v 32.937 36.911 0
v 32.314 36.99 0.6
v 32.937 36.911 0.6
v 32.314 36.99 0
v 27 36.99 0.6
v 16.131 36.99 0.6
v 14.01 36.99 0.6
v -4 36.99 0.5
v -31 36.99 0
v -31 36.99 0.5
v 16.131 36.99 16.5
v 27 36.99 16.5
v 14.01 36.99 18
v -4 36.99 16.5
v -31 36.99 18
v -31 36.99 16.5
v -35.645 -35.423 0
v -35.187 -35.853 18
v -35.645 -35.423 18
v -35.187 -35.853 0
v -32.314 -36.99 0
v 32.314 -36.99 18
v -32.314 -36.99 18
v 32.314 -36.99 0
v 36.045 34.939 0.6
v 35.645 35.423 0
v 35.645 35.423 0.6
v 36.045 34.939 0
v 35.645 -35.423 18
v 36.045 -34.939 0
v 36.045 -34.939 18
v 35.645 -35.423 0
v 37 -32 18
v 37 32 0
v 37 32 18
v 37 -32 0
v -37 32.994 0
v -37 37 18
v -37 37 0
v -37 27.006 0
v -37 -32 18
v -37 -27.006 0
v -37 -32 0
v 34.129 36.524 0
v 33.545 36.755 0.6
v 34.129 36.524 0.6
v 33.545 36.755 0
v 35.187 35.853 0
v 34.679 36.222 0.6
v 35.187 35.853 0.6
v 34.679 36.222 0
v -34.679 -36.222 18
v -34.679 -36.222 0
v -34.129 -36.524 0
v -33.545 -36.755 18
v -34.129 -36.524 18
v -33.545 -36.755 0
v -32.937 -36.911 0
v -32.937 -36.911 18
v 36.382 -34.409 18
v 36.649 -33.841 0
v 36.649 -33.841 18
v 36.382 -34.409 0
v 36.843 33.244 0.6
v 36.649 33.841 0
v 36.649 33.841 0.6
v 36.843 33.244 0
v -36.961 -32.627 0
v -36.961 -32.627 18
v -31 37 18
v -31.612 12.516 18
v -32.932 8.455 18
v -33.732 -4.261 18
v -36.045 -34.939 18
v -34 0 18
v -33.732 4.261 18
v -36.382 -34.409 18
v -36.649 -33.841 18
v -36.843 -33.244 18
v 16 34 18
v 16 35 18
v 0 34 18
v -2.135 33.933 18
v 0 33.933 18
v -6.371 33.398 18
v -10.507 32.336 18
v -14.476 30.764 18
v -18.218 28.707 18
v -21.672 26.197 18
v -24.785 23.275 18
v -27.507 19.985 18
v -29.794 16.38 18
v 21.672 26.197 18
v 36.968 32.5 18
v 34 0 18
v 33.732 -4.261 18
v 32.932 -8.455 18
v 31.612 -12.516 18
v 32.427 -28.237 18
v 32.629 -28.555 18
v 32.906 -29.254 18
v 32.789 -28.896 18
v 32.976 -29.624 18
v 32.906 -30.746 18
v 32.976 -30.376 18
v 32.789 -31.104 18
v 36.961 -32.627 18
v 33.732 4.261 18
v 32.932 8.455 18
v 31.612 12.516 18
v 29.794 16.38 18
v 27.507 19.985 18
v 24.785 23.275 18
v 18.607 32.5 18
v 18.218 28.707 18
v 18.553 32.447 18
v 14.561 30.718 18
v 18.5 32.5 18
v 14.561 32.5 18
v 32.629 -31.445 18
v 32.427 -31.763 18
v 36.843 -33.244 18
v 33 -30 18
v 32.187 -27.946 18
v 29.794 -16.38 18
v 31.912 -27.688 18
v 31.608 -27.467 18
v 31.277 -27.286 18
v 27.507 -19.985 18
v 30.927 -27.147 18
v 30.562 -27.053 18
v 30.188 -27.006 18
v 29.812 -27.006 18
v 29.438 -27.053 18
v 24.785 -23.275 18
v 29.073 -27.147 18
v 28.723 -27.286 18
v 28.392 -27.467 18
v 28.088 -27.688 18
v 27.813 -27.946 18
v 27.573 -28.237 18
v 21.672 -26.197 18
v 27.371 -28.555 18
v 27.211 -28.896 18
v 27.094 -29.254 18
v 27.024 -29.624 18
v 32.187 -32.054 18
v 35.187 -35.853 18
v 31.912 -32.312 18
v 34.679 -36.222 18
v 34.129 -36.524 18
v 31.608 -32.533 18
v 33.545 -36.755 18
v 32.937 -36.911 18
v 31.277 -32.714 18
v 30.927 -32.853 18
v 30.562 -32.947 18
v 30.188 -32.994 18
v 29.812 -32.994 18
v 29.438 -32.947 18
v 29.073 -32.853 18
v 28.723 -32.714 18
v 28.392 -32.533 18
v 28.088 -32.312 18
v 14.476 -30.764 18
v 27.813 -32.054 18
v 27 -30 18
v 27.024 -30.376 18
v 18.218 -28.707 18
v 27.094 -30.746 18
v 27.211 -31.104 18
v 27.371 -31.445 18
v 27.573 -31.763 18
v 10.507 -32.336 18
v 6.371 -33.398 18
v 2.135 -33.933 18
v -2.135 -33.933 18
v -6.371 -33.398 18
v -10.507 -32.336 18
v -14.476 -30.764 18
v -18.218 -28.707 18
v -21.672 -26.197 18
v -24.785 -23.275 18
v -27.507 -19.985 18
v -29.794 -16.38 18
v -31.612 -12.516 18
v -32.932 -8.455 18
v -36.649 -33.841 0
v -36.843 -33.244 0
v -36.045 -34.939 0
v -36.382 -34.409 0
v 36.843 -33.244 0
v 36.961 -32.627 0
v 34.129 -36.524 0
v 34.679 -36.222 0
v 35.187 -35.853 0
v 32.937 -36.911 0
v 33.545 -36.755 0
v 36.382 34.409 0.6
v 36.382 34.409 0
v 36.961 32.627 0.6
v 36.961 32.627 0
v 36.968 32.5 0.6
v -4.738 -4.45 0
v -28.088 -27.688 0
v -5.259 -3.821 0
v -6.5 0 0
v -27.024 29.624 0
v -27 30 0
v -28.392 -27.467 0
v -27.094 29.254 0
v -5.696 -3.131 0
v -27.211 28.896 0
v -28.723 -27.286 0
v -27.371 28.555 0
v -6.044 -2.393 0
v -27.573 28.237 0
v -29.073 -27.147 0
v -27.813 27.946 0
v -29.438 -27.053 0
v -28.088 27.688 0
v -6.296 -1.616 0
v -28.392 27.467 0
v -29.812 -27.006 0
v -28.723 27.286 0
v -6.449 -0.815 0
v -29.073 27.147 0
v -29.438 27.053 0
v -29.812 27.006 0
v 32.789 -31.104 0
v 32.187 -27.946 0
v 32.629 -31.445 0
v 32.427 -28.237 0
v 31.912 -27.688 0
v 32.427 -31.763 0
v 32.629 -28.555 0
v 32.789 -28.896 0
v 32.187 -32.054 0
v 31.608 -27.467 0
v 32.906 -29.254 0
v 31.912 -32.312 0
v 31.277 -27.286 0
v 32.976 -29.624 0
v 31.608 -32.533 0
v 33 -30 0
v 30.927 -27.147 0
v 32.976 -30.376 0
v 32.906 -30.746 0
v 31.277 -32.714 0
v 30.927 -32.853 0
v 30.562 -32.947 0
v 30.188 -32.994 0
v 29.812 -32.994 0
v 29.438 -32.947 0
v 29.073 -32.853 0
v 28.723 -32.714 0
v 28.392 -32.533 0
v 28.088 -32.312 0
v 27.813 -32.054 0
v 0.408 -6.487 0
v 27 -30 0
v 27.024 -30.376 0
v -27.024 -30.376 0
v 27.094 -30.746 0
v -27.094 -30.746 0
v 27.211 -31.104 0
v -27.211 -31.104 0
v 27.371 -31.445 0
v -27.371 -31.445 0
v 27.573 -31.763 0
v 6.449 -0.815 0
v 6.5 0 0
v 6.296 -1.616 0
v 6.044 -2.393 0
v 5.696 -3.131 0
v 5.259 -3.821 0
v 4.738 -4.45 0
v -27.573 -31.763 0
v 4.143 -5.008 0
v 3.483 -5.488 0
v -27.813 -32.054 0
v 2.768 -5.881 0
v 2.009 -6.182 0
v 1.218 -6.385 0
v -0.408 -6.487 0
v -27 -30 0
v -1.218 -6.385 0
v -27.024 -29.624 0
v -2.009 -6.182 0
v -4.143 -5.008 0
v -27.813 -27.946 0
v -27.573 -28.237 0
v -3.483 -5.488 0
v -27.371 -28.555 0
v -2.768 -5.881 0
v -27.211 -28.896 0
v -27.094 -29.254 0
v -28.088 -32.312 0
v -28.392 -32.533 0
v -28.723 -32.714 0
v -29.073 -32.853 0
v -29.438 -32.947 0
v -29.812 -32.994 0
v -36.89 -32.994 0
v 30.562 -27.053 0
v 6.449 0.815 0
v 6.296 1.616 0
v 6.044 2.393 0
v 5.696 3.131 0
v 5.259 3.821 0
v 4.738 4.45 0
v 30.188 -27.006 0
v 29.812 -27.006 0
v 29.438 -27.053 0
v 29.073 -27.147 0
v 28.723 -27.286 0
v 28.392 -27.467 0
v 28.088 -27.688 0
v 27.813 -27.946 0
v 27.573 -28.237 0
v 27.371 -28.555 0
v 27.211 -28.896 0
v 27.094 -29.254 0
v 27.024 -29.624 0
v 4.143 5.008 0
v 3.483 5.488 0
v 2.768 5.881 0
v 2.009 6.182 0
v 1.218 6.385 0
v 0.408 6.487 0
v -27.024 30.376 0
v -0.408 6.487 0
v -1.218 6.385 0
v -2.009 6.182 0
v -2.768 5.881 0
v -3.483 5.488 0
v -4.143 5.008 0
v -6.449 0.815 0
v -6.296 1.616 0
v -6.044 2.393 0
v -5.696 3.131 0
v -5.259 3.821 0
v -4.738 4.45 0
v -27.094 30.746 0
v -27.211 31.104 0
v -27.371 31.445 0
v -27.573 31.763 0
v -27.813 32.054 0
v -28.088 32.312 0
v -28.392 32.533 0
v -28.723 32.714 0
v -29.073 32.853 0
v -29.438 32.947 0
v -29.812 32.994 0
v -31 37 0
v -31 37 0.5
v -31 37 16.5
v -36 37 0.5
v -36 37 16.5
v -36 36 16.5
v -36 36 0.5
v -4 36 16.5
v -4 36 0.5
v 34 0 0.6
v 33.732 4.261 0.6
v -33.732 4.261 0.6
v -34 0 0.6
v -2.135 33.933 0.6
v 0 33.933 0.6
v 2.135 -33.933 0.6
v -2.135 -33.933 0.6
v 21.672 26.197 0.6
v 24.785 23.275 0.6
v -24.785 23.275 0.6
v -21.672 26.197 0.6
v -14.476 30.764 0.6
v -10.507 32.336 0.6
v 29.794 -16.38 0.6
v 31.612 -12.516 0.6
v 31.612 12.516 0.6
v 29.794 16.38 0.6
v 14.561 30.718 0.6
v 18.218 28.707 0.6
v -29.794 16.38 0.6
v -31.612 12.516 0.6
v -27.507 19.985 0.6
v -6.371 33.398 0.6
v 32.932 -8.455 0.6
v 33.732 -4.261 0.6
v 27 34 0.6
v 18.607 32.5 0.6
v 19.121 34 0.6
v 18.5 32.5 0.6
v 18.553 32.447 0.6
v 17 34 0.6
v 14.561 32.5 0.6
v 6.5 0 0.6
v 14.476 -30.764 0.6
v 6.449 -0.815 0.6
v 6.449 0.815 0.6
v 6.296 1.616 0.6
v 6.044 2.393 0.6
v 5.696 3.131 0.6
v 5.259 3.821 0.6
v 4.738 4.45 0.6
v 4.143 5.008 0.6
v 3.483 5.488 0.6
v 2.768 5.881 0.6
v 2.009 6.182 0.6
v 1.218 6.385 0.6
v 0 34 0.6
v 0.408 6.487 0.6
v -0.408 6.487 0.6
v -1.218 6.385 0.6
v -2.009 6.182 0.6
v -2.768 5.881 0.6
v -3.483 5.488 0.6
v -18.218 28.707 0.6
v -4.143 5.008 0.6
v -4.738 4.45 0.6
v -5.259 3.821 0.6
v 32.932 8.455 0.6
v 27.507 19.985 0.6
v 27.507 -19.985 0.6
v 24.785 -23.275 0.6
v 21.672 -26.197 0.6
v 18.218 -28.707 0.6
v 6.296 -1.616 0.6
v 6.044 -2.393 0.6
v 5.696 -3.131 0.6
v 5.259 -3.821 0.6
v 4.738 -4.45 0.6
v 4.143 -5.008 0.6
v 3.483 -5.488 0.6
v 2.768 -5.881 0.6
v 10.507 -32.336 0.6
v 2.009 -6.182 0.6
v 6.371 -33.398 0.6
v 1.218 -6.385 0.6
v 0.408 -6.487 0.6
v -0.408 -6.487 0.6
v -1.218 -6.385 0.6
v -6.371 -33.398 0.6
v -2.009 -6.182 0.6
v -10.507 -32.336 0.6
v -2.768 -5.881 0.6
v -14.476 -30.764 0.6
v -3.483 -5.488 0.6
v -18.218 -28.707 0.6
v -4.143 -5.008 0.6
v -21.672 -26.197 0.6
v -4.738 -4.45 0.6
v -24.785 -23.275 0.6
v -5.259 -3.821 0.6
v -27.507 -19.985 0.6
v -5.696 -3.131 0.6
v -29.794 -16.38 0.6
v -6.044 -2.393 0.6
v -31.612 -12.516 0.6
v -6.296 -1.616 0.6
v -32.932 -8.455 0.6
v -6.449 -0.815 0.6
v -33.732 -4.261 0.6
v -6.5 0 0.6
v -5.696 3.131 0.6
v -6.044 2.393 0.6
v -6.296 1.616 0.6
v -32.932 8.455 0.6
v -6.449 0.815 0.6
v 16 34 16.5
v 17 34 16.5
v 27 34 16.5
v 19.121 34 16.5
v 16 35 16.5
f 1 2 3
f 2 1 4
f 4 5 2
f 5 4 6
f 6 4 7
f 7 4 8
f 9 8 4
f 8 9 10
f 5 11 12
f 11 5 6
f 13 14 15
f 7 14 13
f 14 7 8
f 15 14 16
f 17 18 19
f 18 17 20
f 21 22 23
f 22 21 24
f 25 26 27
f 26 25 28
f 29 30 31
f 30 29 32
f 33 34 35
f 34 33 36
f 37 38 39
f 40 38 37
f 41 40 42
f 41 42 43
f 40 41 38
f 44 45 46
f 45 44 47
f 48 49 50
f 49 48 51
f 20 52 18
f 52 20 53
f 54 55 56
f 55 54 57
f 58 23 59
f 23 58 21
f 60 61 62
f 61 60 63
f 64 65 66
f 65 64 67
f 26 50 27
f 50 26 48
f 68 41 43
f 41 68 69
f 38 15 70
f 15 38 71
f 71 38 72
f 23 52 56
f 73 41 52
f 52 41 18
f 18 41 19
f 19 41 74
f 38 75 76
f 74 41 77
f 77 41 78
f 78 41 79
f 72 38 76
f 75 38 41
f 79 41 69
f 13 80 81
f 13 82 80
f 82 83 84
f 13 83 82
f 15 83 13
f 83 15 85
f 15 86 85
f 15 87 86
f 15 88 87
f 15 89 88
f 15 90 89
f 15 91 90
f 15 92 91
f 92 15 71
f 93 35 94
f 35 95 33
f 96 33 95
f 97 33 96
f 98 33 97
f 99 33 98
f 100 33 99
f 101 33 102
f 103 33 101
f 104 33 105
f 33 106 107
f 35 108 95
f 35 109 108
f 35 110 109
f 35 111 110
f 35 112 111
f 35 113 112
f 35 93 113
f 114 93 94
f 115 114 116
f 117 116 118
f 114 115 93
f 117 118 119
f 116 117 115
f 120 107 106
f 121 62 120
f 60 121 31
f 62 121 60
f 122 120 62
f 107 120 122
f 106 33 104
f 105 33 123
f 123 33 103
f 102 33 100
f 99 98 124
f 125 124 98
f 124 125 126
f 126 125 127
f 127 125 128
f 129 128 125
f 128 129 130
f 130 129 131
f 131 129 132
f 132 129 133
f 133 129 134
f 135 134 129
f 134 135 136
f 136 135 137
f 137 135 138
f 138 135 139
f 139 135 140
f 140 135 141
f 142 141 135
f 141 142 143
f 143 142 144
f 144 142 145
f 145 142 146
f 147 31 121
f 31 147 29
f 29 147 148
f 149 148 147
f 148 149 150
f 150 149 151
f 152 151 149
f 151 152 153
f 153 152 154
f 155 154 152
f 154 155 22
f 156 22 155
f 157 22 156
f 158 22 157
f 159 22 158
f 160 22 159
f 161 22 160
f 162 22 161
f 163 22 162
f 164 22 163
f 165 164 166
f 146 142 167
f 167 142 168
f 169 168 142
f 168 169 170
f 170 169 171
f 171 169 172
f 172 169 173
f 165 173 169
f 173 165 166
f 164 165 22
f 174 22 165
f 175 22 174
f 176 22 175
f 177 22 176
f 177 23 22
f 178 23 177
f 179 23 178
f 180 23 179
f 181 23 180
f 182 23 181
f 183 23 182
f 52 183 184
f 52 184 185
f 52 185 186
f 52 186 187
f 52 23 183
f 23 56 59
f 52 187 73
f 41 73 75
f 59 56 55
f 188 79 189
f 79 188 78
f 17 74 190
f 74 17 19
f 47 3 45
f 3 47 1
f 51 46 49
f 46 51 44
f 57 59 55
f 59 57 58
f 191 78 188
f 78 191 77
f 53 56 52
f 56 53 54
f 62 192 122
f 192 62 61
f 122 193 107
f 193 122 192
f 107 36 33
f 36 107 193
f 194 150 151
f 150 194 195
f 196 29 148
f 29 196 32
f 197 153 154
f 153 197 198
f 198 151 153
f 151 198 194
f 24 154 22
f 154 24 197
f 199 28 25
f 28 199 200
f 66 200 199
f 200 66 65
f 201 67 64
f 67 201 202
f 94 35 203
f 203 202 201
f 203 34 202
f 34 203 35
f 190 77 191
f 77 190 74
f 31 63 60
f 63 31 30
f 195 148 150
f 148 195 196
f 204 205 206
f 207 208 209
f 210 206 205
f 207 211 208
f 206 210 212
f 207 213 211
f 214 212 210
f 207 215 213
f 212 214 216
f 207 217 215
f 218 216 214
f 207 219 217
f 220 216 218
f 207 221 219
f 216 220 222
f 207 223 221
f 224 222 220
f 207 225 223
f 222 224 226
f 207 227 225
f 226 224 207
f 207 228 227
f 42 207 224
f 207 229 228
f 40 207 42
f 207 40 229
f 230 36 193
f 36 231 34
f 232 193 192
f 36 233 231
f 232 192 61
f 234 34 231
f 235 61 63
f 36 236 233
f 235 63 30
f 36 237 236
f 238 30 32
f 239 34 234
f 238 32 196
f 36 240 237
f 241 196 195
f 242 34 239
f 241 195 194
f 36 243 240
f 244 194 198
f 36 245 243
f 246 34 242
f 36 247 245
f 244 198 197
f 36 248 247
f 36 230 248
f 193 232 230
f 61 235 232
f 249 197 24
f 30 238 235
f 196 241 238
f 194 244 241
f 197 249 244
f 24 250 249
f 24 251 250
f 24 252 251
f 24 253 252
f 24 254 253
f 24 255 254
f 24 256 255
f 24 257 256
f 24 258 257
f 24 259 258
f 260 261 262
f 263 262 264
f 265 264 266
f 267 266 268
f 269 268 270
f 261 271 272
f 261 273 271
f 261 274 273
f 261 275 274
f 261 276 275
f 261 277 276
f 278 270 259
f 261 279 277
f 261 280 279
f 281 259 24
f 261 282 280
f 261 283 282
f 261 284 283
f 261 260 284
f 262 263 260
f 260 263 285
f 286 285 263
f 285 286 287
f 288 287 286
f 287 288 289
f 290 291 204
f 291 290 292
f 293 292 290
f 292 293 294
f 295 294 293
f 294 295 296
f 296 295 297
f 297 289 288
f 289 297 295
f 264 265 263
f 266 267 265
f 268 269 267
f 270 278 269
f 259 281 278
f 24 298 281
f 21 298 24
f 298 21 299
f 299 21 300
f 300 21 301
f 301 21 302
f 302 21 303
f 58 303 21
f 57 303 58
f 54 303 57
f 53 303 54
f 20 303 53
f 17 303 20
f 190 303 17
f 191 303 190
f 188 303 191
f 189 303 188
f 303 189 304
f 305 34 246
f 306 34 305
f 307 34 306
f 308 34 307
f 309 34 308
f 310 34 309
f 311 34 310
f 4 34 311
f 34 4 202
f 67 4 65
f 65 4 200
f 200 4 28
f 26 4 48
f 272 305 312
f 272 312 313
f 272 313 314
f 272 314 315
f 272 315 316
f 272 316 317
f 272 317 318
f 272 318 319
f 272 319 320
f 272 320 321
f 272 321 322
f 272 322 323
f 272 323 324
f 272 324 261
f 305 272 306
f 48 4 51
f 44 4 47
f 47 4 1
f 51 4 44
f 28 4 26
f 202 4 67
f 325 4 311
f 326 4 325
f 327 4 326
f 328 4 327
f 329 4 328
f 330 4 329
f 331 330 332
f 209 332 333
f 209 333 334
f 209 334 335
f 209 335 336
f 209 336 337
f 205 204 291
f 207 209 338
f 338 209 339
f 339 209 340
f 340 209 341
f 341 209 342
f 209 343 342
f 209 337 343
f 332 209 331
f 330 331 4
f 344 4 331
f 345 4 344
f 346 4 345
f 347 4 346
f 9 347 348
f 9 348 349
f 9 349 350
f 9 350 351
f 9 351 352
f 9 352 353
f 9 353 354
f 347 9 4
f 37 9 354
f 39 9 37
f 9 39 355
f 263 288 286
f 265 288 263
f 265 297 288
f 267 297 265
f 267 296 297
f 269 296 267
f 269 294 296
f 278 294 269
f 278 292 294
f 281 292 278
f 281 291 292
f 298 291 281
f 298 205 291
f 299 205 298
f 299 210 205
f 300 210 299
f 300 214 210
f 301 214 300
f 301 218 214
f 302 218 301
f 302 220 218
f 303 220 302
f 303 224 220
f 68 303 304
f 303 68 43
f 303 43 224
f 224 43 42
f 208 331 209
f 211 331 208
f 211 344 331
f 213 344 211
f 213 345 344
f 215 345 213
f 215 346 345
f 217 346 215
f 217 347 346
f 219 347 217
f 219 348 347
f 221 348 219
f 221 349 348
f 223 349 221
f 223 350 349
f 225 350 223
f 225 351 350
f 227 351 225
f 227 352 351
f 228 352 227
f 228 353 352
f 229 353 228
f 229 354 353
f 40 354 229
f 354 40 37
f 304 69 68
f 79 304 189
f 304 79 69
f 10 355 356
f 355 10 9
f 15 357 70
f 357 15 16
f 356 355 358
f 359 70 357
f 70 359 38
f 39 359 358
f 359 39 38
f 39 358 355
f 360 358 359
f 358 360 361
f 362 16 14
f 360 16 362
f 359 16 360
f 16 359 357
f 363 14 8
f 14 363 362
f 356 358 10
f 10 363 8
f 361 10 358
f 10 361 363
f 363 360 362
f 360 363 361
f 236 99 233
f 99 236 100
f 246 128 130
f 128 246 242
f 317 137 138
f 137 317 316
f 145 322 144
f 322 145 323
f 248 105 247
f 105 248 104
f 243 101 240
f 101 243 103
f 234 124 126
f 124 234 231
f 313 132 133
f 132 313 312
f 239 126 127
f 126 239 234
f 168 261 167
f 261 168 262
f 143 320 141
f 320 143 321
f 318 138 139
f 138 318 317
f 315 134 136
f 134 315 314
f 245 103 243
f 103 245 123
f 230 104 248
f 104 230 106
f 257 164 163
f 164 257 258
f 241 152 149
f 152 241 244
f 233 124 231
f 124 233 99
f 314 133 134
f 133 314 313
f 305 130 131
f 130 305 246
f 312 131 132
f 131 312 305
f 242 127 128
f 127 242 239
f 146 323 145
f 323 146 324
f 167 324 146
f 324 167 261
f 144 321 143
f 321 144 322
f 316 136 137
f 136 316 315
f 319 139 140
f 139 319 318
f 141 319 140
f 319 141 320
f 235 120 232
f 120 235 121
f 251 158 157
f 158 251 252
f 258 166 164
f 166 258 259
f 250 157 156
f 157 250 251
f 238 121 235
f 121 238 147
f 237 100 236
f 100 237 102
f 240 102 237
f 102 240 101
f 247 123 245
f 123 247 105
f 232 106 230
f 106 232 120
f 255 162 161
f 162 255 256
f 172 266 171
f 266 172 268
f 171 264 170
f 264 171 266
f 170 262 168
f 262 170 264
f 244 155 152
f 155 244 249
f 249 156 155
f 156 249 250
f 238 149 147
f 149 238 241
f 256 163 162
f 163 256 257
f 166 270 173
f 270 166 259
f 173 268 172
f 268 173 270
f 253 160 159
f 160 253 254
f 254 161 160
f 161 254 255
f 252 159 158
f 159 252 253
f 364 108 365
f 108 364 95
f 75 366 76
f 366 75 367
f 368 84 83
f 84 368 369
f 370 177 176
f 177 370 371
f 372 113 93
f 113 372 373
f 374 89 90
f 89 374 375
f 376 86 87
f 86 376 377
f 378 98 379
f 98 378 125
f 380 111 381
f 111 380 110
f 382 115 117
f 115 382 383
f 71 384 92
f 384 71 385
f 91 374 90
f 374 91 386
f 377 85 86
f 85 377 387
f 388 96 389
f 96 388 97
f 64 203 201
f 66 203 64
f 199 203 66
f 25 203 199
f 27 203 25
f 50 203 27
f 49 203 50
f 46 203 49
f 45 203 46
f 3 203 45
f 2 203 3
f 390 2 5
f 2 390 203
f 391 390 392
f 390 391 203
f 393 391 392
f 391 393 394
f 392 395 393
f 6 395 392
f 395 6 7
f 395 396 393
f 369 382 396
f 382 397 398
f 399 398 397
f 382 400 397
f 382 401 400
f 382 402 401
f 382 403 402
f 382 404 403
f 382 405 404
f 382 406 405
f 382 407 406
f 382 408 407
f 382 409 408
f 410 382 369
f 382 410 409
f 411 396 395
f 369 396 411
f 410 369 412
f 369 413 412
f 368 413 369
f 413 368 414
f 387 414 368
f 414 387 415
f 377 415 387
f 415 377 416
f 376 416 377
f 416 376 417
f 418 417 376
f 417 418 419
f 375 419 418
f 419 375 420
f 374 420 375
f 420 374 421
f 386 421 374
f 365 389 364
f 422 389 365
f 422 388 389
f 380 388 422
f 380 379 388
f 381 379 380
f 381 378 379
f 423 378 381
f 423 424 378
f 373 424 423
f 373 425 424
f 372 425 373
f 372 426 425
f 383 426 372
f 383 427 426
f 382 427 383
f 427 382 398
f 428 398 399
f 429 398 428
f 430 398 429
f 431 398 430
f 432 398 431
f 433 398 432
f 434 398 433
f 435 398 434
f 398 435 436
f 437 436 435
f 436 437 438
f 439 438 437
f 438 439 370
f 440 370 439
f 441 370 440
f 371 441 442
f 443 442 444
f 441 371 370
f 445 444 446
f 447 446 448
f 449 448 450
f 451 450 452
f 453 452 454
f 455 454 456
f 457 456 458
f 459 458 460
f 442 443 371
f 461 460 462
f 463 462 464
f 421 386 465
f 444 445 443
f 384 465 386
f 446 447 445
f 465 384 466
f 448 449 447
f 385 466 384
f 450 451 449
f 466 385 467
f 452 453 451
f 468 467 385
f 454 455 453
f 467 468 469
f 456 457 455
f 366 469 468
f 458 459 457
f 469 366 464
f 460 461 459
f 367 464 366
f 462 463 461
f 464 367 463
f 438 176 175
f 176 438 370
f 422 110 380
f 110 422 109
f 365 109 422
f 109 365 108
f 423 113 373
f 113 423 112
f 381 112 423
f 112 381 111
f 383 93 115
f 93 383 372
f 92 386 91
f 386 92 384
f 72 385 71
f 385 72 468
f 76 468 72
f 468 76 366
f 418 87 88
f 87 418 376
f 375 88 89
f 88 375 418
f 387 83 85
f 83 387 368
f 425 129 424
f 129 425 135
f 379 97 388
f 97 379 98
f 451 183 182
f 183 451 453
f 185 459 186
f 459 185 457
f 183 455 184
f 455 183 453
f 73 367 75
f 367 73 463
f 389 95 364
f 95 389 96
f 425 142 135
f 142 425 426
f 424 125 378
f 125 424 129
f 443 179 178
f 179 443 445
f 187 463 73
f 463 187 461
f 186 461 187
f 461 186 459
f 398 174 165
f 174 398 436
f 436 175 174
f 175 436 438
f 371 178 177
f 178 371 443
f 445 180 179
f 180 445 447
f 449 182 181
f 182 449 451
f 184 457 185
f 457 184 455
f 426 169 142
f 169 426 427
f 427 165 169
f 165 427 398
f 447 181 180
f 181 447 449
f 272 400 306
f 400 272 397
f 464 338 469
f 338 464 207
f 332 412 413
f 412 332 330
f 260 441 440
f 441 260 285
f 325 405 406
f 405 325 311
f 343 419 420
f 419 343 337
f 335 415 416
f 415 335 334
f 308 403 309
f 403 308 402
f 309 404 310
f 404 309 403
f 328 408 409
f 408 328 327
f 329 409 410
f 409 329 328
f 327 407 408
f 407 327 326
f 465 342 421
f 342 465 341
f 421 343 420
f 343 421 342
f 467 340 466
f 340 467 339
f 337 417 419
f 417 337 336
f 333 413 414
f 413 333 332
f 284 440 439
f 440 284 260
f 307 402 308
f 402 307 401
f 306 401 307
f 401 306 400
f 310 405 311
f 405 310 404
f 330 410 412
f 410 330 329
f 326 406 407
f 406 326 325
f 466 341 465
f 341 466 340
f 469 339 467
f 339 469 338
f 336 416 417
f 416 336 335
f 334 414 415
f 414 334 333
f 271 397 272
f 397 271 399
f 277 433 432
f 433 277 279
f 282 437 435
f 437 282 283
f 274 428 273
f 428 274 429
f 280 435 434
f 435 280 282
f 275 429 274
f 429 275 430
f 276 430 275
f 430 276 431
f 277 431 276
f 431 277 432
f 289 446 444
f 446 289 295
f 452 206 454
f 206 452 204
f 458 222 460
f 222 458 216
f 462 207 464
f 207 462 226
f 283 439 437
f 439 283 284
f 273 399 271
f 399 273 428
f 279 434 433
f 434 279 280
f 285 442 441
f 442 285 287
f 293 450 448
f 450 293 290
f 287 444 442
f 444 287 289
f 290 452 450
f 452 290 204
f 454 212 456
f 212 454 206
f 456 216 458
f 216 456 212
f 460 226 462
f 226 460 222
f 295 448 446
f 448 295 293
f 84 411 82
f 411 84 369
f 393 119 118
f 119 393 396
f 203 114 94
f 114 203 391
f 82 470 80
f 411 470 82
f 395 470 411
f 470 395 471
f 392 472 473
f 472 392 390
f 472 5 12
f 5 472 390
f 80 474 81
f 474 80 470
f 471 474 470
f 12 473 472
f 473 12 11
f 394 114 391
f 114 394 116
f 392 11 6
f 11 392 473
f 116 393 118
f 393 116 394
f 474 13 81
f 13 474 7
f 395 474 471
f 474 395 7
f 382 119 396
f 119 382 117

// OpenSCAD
$fn = 50;


difference() {
	union() {
		hull() {
			translate(v = [-32.0000000000, 32.0000000000, 0]) {
				cylinder(h = 18, r = 5);
			}
			translate(v = [32.0000000000, 32.0000000000, 0]) {
				cylinder(h = 18, r = 5);
			}
			translate(v = [-32.0000000000, -32.0000000000, 0]) {
				cylinder(h = 18, r = 5);
			}
			translate(v = [32.0000000000, -32.0000000000, 0]) {
				cylinder(h = 18, r = 5);
			}
		}
		translate(v = [-37.0000000000, 31.0000000000, 0]) {
			cube(size = [6, 6, 18]);
		}
	}
	union() {
		translate(v = [-37.5000000000, -30.0000000000, -250.0000000000]) {
			rotate(a = [0, 0, 0]) {
				difference() {
					union() {
						hull() {
							translate(v = [7.5000000000, 0, 0]) {
								cylinder(h = 250, r = 3.0000000000, r1 = 3.0000000000, r2 = 3.0000000000);
							}
							translate(v = [-7.5000000000, 0, 0]) {
								cylinder(h = 250, r = 3.0000000000, r1 = 3.0000000000, r2 = 3.0000000000);
							}
						}
					}
					union();
				}
			}
		}
		translate(v = [-37.5000000000, 30.0000000000, -250.0000000000]) {
			rotate(a = [0, 0, 0]) {
				difference() {
					union() {
						hull() {
							translate(v = [7.5000000000, 0, 0]) {
								cylinder(h = 250, r = 3.0000000000, r1 = 3.0000000000, r2 = 3.0000000000);
							}
							translate(v = [-7.5000000000, 0, 0]) {
								cylinder(h = 250, r = 3.0000000000, r1 = 3.0000000000, r2 = 3.0000000000);
							}
						}
					}
					union();
				}
			}
		}
		translate(v = [-36.0000000000, 36.0000000000, 0.5000000000]) {
			cube(size = [32, 1, 16]);
		}
		translate(v = [30.0000000000, -30.0000000000, -50.0000000000]) {
			cylinder(h = 100, r = 3.0000000000);
		}
		translate(v = [0, 0, 0.6000000000]) {
			cylinder(h = 20.4000000000, r = 34.0000000000);
		}
		translate(v = [0, 0, -9.0000000000]) {
			cylinder(h = 18, r = 6.5000000000);
		}
		translate(v = [0.0000000000, 32.5000000000, 0.6000000000]) {
			cube(size = [37.0000000000, 1.5000000000, 20.4000000000]);
		}
		translate(v = [27.0000000000, 32.5000000000, 0.6000000000]) {
			cube(size = [10, 4.5000000000, 20.4000000000]);
		}
		translate(v = [16.0000000000, 32.5000000000, 16.5000000000]) {
			cube(size = [21, 4.5000000000, 1.5000000000]);
		}
		translate(v = [13.2500000000, 37.7500000000, 0.6000000000]) {
			rotate(a = [0, 0, -45]) {
				cube(size = [7.5000000000, 1.5000000000, 20.4000000000]);
			}
		}
		translate(v = [7.0610000000, 30.5000000000, 0.6000000000]) {
			cube(size = [7.5000000000, 2, 17.4000000000]);
		}
	}
}
